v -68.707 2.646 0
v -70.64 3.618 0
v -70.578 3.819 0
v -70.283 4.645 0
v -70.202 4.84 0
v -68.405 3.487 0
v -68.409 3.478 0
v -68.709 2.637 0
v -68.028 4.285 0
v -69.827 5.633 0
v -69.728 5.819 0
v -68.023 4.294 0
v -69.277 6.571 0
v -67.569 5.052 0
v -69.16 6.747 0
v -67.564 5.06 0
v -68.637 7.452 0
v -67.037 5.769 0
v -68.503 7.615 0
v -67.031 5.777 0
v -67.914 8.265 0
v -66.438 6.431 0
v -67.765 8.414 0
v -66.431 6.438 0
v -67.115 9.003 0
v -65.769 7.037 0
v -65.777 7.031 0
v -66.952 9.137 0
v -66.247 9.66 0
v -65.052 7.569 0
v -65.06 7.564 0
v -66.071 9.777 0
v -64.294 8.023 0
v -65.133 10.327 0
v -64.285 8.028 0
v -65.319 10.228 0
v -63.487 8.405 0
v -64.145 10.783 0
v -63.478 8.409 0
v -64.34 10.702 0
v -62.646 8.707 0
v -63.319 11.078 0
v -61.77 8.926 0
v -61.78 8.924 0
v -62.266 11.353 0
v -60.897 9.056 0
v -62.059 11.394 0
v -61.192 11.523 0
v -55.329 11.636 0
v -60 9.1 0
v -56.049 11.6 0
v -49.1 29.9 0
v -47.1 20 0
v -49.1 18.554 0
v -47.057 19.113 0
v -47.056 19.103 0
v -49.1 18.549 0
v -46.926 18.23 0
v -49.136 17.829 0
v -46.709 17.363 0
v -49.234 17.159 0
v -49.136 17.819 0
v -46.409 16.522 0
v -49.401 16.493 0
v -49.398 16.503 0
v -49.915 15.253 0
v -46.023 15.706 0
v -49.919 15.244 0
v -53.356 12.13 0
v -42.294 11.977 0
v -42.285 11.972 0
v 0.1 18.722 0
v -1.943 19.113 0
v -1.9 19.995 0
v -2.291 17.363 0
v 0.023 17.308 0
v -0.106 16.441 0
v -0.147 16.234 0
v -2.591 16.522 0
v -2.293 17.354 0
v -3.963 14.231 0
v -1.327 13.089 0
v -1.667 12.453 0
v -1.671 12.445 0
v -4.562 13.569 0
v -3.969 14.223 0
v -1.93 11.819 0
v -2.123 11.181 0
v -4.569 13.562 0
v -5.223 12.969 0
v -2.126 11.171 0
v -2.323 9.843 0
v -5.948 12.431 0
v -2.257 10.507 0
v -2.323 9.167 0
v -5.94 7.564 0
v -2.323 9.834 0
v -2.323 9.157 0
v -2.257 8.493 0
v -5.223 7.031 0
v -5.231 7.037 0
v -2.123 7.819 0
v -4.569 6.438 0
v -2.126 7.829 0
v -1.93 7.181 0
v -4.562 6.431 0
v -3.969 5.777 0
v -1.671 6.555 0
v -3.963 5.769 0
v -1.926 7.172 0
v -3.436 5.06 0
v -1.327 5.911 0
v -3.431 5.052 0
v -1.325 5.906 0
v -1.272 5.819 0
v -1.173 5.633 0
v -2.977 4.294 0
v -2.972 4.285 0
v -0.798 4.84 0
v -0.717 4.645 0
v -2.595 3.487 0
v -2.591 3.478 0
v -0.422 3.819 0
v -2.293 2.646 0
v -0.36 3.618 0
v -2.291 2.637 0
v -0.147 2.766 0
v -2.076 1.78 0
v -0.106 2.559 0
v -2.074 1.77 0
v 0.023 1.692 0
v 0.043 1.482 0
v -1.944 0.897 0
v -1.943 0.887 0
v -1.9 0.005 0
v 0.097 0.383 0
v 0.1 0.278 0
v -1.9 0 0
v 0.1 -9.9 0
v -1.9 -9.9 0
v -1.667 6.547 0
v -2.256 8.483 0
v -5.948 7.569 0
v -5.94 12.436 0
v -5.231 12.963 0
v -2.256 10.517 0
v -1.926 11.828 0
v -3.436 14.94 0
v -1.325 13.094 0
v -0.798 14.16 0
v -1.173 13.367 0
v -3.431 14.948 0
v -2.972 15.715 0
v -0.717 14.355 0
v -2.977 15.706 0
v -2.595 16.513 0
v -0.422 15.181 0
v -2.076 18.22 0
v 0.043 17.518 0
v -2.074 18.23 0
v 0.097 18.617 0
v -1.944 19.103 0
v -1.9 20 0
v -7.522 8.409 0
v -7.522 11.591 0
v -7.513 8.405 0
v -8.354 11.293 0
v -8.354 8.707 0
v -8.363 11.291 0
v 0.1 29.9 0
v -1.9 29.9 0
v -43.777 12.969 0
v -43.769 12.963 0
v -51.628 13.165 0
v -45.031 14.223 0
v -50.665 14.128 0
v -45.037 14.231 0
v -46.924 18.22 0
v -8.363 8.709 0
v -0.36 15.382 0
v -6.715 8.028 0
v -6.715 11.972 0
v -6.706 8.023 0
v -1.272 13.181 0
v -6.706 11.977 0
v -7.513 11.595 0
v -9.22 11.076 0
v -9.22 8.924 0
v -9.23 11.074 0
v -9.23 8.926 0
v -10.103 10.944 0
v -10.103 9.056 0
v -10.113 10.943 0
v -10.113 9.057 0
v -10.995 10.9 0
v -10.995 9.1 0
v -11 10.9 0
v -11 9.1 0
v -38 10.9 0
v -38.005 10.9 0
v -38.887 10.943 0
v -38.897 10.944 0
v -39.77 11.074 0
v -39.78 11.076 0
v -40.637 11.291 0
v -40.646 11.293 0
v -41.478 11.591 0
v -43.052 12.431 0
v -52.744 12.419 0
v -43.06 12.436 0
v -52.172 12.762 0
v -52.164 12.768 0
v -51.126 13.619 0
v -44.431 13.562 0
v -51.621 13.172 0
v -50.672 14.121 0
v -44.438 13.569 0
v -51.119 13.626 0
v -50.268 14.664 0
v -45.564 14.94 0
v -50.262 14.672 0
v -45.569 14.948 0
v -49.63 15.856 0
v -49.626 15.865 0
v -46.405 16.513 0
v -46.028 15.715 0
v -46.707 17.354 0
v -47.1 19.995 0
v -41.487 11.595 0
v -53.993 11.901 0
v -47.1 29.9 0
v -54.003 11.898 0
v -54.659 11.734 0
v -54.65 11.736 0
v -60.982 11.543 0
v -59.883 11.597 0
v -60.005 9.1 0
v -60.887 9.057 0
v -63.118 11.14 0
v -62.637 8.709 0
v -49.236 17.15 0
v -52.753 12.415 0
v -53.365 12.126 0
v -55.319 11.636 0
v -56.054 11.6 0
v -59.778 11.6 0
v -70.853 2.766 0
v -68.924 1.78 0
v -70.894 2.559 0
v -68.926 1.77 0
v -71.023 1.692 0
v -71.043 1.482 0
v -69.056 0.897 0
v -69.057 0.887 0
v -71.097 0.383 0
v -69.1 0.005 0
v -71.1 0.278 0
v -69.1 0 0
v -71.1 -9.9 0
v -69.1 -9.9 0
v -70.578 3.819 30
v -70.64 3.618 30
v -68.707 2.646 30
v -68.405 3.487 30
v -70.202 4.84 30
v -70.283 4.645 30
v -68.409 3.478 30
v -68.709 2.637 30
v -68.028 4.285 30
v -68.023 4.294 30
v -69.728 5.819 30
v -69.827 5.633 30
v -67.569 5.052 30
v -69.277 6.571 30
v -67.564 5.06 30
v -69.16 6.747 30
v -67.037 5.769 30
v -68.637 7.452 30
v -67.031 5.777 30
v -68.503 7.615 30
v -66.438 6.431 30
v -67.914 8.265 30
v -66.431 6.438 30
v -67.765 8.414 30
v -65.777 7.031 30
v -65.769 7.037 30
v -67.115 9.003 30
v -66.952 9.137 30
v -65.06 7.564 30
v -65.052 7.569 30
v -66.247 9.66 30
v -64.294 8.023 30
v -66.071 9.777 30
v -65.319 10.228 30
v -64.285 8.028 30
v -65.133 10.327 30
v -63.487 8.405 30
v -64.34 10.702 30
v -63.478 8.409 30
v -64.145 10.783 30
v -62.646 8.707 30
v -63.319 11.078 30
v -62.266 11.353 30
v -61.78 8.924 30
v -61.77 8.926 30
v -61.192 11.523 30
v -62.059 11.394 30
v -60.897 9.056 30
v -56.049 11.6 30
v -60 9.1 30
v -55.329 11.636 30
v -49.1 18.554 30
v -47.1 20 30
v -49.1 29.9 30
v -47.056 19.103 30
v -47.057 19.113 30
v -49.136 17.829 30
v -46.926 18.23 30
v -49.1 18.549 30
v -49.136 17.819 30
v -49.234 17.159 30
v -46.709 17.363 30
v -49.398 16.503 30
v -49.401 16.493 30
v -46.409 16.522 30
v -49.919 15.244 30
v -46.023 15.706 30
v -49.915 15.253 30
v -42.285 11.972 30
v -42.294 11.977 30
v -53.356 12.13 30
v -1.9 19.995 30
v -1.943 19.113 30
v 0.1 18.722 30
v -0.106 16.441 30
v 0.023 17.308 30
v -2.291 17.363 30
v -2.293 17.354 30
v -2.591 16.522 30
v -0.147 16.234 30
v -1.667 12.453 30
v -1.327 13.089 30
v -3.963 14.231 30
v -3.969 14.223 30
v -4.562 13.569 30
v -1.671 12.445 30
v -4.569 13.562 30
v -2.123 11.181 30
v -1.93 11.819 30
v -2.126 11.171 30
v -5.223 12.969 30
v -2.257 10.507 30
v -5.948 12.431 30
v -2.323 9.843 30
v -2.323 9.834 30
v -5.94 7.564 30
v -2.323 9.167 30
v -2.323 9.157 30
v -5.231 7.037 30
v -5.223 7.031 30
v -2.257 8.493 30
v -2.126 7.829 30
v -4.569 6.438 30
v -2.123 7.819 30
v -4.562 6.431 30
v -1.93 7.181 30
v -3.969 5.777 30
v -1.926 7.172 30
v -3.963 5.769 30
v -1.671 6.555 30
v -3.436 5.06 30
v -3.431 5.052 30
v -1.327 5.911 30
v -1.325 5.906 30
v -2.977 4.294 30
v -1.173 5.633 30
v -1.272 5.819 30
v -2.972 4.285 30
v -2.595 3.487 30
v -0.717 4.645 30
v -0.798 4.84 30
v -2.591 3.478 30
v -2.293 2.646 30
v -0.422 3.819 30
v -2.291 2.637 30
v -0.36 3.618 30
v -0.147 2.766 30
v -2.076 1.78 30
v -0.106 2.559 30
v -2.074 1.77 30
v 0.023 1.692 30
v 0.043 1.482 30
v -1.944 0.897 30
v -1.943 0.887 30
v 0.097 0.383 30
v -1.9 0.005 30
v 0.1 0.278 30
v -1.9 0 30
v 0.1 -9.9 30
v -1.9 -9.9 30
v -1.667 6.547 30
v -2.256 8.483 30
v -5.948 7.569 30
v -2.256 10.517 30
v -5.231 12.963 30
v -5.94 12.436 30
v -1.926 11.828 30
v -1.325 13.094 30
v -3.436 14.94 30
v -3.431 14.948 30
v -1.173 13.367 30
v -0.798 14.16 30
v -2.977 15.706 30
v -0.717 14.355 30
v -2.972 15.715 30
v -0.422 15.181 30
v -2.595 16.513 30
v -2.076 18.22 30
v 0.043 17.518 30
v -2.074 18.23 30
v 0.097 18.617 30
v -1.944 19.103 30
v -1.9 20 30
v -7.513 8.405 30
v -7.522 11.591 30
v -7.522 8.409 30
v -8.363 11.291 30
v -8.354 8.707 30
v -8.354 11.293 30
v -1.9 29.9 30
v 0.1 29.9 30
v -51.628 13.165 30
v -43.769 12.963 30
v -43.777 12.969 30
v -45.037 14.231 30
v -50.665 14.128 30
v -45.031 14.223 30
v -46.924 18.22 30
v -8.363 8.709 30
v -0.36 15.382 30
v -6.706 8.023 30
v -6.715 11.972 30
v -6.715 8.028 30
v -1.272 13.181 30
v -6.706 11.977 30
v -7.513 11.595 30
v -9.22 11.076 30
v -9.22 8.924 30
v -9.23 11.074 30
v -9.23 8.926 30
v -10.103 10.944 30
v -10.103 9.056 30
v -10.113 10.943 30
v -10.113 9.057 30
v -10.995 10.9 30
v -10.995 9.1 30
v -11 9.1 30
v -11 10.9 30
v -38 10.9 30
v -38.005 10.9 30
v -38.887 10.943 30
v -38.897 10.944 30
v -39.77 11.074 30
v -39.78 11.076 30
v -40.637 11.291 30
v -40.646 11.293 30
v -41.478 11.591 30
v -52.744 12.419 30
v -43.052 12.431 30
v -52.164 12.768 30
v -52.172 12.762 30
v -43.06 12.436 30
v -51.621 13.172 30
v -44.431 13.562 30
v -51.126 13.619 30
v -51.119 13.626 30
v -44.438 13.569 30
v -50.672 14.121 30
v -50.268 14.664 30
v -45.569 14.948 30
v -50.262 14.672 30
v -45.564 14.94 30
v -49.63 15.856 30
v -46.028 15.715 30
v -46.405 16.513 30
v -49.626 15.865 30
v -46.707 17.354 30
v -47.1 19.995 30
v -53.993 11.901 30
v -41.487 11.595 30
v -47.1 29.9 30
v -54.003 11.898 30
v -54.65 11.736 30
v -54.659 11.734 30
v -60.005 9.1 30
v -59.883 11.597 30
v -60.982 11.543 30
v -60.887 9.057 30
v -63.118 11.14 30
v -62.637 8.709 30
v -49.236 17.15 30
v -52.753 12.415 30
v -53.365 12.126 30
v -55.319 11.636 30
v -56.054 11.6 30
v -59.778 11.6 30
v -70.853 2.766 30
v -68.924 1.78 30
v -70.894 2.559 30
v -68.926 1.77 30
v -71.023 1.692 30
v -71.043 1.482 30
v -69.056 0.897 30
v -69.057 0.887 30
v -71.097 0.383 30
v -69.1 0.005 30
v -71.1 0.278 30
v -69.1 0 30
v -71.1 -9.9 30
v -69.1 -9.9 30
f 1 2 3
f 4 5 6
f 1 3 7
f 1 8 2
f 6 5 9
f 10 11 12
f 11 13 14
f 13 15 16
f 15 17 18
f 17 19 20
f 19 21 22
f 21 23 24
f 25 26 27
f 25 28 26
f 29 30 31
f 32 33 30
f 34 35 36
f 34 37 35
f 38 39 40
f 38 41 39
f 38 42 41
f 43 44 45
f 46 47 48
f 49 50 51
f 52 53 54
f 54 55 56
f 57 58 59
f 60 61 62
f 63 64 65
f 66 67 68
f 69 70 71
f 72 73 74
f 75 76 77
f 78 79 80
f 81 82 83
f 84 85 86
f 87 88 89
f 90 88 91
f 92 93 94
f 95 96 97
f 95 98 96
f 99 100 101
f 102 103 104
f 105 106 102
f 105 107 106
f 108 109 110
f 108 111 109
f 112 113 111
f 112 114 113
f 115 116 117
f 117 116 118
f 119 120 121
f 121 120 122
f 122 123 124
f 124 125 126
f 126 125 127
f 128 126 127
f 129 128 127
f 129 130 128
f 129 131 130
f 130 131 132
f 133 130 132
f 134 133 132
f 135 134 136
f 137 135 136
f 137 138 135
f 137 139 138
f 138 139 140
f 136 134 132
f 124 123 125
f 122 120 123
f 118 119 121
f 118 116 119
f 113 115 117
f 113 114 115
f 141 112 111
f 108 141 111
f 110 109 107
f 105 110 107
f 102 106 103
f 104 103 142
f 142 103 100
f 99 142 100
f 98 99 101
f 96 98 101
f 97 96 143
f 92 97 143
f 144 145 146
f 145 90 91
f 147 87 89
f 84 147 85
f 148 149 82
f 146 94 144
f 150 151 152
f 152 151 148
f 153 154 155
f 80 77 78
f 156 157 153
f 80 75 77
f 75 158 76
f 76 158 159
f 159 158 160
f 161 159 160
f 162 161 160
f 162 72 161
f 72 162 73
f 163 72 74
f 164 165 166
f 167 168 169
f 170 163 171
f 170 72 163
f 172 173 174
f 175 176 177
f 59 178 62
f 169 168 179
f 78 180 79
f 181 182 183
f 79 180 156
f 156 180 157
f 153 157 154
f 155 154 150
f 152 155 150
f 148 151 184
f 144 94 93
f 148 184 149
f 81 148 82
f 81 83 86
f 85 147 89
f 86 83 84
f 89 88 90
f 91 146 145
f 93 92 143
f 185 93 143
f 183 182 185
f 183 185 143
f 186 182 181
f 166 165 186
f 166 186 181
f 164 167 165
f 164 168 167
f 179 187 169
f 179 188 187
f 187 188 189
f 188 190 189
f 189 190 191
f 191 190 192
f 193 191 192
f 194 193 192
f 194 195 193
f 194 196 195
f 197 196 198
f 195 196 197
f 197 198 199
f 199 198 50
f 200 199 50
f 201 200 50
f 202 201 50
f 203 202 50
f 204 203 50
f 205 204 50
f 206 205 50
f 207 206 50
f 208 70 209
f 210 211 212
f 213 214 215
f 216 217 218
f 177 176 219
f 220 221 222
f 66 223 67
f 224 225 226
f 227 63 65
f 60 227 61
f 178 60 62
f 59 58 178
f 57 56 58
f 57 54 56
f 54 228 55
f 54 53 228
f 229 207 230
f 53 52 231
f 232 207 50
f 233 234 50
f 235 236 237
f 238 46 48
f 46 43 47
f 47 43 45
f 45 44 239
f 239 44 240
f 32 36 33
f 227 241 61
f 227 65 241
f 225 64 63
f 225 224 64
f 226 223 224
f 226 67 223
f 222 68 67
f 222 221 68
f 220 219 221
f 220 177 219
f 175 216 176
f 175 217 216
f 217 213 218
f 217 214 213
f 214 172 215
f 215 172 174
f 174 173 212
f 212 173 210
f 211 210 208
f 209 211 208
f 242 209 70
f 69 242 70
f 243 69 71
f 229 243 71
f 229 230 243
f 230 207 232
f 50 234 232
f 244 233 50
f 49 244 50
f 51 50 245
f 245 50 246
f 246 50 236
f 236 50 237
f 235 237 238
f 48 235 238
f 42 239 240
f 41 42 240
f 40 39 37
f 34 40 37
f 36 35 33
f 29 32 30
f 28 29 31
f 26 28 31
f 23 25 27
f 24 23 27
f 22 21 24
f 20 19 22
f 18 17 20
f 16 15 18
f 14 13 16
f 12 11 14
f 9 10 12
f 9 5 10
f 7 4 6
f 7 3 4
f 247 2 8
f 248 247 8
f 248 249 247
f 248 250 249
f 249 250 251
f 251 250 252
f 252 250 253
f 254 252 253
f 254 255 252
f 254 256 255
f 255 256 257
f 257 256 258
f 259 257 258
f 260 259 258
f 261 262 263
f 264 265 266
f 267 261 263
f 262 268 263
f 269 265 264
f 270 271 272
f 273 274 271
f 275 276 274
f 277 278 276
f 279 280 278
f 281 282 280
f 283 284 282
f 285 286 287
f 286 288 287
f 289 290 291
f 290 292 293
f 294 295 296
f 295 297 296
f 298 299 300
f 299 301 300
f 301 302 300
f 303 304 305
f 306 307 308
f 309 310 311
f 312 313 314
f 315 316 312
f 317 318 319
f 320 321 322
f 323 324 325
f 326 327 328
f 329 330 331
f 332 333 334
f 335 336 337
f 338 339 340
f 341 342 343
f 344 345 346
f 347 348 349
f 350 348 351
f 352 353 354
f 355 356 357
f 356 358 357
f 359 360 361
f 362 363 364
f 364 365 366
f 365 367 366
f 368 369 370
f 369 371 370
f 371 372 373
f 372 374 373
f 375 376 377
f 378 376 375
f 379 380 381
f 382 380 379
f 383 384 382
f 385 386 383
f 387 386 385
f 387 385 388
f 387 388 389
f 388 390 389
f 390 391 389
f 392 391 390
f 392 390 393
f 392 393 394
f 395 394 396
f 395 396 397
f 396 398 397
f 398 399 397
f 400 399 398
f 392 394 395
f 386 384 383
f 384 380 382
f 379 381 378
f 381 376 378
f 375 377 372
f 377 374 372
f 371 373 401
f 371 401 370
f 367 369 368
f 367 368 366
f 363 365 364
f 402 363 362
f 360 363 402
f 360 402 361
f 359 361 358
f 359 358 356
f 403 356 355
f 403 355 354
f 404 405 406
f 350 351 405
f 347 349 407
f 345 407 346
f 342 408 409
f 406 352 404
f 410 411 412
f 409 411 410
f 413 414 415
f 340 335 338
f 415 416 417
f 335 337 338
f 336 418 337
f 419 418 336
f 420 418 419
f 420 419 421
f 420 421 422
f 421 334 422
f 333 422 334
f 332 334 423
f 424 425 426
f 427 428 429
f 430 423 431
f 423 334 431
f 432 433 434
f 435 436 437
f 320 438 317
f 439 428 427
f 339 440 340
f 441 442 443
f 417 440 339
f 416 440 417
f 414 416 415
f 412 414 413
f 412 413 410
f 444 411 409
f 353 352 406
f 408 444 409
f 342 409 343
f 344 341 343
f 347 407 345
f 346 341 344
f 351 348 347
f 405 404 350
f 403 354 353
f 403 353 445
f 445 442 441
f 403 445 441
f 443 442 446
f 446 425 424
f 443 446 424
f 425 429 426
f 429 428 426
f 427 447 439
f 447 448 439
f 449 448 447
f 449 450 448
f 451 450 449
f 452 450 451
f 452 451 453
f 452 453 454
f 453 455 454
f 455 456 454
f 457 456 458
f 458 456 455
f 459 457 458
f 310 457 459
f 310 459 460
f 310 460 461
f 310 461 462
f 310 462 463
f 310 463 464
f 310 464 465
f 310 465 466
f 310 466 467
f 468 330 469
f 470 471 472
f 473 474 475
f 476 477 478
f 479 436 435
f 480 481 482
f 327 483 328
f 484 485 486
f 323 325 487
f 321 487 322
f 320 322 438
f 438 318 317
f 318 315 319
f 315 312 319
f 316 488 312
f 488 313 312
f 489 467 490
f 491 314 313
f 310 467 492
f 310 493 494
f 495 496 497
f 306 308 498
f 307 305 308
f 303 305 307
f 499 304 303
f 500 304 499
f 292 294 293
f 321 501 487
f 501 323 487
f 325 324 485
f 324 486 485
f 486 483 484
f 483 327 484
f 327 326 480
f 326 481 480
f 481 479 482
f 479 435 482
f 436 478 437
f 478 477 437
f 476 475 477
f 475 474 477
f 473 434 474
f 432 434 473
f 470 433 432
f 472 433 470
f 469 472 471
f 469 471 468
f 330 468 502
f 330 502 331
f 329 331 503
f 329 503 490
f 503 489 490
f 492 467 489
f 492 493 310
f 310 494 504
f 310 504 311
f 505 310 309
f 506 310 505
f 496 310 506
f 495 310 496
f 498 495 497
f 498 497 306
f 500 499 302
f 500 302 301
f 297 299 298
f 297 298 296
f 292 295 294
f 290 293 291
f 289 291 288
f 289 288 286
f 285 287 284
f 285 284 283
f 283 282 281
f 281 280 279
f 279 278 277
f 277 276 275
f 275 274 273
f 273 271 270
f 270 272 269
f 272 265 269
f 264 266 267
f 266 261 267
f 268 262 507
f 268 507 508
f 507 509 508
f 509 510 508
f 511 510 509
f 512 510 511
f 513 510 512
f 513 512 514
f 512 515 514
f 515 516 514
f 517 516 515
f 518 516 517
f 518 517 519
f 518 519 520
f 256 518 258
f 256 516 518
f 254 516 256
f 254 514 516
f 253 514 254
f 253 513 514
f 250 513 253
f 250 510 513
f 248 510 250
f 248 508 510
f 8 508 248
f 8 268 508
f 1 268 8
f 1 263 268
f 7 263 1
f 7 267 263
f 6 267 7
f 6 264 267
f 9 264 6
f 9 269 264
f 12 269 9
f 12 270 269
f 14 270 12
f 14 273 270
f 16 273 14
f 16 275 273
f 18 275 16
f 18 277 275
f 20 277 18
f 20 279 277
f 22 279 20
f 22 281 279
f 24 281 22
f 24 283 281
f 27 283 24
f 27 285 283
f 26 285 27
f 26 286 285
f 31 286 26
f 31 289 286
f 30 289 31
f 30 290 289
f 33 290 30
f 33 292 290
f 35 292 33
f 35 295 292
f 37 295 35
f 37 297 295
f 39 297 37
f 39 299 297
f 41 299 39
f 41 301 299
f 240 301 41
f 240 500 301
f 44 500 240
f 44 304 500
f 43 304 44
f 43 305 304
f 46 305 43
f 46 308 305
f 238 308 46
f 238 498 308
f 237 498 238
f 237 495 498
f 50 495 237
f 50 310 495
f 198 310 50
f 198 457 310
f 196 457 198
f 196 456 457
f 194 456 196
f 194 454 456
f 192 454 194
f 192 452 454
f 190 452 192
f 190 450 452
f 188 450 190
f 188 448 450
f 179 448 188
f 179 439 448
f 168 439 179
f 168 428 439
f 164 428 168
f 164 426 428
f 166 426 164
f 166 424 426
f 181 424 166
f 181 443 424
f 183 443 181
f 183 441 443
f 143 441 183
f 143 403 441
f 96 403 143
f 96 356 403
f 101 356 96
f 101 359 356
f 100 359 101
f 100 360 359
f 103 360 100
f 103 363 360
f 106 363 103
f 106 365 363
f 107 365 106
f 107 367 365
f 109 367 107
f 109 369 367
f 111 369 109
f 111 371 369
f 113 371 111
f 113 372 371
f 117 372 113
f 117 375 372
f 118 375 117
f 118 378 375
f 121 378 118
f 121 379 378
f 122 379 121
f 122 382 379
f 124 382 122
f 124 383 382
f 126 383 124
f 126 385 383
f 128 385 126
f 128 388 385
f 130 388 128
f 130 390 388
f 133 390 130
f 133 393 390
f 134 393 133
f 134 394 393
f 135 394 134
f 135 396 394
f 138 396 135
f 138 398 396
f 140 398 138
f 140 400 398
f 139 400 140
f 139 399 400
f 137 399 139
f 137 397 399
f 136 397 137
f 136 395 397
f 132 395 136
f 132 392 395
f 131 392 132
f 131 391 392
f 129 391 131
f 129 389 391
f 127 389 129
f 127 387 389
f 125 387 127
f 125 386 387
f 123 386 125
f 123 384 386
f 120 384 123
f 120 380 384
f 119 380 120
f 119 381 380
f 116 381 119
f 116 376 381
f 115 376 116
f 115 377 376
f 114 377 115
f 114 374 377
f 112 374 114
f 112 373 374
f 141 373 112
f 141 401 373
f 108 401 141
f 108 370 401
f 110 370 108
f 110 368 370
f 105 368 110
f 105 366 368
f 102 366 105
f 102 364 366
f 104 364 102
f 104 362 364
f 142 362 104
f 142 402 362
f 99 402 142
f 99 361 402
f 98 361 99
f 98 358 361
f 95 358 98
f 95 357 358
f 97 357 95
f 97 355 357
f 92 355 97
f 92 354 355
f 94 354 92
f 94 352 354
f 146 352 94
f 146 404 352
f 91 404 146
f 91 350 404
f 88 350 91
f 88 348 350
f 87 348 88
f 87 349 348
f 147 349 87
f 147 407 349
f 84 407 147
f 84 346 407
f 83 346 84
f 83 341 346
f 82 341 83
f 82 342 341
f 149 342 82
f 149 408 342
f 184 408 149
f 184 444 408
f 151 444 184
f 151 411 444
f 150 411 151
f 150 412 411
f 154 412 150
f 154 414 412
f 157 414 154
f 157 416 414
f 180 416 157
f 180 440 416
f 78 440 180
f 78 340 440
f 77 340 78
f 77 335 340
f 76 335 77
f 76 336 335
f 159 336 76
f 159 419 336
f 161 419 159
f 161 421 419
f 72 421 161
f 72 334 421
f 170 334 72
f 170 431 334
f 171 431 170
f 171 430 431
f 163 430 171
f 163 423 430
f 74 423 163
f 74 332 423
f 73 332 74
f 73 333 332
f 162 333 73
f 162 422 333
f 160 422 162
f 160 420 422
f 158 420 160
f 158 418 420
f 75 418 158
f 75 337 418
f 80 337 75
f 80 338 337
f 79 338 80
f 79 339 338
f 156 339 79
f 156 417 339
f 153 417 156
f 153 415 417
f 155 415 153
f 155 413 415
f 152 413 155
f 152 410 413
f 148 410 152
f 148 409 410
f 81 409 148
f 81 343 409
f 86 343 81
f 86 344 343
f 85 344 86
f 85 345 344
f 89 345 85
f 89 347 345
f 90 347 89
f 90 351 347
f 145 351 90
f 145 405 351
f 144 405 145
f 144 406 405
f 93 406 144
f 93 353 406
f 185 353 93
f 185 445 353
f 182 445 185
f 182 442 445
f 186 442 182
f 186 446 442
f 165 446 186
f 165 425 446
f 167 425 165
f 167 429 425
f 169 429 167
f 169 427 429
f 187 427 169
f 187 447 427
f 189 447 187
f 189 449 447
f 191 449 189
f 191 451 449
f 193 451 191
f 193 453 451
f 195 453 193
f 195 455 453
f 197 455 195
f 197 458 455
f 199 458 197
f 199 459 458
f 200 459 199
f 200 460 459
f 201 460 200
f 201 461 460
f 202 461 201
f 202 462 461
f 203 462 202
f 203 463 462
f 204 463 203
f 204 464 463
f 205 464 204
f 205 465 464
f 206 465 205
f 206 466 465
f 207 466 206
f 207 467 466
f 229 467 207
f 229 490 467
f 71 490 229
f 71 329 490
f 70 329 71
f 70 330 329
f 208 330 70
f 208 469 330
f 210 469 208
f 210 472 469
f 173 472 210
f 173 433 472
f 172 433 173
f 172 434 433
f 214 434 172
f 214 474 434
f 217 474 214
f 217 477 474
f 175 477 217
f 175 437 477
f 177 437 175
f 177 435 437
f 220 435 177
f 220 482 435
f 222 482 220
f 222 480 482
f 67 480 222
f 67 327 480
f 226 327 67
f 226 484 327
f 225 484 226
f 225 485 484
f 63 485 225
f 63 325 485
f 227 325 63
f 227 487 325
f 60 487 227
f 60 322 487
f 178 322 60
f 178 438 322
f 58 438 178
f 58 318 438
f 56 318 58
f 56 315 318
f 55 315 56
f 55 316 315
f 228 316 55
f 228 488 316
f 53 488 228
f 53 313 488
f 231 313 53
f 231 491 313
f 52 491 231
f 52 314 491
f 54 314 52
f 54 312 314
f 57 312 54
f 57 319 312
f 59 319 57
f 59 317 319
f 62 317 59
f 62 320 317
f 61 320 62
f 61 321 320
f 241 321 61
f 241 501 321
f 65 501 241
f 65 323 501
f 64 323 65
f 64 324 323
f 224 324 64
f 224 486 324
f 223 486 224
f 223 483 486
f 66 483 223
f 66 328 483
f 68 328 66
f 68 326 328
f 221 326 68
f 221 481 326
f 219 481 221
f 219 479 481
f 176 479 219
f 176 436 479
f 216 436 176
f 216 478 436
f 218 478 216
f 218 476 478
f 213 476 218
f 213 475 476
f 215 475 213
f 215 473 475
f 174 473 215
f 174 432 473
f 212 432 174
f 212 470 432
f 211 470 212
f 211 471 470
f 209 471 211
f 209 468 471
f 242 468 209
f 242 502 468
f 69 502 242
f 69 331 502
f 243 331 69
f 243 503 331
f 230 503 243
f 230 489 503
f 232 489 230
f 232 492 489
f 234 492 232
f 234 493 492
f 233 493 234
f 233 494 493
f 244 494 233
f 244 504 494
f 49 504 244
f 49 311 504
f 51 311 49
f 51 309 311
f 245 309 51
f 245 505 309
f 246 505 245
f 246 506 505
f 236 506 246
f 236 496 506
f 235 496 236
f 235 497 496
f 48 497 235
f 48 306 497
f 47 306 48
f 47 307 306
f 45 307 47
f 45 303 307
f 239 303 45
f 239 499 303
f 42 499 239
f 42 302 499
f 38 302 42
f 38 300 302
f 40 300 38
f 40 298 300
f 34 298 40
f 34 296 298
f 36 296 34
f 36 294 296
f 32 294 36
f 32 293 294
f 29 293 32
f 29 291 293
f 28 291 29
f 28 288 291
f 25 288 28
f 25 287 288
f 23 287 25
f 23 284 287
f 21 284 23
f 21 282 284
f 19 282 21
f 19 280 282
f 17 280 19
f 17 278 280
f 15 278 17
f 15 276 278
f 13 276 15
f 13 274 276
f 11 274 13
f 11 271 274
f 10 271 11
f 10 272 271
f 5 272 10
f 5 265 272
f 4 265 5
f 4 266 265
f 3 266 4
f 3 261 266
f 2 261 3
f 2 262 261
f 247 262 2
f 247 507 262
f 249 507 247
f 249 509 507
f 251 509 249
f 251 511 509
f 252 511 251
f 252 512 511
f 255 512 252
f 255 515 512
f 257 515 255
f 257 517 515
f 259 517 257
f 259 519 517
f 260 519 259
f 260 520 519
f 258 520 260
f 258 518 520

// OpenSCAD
$fn=64;
translate([-35.5,0,0])

linear_extrude(30)
offset(-0.1)
difference(){
    offset(2.2)
    offset(-9)
    {
        offset(9*2)
        translate([0,-10,0])
        square([67-9*2,20+1],center=true);
        translate([0,19,0])
        offset(9*2)
        translate([11,10,0])
        square([45-9*2,20+1],center=true);
    }


    offset(9)
    translate([0,-10,0])
    square([67-9*2,20],center=true);
    translate([0,20,0])
    offset(9)
    translate([11,10,0])
    square([45-9*2,20],center=true);

    translate([0,-35,0])
    square([100,50],center=true);
    translate([0,55,0])
    square([100,50],center=true);
}
